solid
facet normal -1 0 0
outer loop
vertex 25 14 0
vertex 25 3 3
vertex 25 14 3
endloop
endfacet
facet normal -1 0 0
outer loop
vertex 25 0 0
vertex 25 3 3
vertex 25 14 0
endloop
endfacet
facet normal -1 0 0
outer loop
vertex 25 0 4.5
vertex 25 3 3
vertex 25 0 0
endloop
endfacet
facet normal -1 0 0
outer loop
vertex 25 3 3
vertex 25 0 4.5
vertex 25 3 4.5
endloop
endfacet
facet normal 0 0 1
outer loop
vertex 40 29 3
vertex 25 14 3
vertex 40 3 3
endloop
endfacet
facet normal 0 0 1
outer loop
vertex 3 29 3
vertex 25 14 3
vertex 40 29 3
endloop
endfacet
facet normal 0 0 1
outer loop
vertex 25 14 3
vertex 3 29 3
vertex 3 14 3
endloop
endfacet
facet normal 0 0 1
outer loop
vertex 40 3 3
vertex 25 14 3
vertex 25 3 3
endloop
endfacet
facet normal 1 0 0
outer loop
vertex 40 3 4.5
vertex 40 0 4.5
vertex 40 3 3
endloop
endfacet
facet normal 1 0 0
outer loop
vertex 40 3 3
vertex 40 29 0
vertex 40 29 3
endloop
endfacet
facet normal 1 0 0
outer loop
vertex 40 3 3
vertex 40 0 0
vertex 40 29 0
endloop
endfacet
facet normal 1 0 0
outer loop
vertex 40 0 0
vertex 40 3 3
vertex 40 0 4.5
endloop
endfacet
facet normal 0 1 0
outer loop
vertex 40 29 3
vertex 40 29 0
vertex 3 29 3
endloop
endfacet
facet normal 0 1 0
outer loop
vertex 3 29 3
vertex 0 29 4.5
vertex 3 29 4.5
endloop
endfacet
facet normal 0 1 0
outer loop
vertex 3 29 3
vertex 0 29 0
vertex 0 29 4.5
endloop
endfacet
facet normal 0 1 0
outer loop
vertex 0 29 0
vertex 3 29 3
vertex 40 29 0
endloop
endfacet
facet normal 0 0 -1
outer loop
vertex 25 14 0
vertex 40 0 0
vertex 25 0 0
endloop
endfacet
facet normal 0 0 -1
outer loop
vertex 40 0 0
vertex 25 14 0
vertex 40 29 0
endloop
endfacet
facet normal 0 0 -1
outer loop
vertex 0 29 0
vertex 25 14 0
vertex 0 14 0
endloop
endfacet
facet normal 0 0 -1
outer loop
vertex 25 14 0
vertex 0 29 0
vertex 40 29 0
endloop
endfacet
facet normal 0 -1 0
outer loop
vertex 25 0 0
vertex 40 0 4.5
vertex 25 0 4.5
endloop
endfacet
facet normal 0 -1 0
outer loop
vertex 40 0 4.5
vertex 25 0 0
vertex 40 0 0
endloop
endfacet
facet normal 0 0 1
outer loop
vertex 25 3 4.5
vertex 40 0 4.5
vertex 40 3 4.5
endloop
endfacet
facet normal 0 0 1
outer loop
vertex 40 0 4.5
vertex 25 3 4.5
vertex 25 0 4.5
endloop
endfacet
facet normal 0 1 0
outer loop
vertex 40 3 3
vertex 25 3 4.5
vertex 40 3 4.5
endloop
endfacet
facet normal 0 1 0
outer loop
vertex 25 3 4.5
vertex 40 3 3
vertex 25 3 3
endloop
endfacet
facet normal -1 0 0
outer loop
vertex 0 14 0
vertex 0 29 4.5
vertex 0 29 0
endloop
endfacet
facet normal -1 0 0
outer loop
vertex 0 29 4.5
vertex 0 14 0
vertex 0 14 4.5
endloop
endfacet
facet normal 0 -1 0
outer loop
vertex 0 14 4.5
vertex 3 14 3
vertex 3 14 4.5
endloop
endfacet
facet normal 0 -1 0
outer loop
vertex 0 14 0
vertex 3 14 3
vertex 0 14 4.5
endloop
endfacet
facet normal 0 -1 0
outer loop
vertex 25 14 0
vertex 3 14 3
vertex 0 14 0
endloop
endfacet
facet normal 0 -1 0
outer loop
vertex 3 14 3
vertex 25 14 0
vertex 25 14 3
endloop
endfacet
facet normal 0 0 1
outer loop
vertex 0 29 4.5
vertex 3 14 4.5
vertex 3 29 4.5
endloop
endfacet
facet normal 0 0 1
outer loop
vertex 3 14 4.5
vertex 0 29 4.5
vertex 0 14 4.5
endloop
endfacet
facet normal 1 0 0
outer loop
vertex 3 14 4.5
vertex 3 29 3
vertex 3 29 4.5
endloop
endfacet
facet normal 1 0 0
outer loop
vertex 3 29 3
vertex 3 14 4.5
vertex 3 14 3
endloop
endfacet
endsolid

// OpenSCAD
translate([25,0])
    cube([15,29,3]);
translate([25,0,3])
    cube([15,3,1.5]);
    
translate([0,14])
    cube([40,15,3]);
translate([0,14,3])
    cube([3,15,1.5]);
